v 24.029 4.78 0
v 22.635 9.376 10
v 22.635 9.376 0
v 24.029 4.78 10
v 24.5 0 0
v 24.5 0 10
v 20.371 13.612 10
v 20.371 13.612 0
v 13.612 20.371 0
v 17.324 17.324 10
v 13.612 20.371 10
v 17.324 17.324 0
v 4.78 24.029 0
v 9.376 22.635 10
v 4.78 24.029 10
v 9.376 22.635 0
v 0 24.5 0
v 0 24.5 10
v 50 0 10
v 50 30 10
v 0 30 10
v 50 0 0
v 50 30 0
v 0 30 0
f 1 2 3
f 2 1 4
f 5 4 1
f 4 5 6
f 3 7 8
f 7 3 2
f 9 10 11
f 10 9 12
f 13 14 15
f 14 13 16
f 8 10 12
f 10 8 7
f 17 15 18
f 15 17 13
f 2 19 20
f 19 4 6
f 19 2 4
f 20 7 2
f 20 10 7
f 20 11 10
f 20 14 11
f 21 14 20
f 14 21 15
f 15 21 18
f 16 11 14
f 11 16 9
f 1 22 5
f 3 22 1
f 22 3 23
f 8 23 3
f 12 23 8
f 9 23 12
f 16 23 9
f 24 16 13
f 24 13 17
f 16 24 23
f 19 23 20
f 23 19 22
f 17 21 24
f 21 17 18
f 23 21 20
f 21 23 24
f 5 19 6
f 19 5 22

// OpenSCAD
module brick(width, depth, height, wall_thickness, roundness) {
  difference() {
    cube([width, depth, height]);
    for (i = [0:roundness]) {
      translate([0, 0, 0])
        cylinder(r = (width / 2) - roundness * 0.5, h = height, $fn = 32);
    }
  }
}

brick(width = 50, depth = 30, height = 10, wall_thickness = 2, roundness = 1);
